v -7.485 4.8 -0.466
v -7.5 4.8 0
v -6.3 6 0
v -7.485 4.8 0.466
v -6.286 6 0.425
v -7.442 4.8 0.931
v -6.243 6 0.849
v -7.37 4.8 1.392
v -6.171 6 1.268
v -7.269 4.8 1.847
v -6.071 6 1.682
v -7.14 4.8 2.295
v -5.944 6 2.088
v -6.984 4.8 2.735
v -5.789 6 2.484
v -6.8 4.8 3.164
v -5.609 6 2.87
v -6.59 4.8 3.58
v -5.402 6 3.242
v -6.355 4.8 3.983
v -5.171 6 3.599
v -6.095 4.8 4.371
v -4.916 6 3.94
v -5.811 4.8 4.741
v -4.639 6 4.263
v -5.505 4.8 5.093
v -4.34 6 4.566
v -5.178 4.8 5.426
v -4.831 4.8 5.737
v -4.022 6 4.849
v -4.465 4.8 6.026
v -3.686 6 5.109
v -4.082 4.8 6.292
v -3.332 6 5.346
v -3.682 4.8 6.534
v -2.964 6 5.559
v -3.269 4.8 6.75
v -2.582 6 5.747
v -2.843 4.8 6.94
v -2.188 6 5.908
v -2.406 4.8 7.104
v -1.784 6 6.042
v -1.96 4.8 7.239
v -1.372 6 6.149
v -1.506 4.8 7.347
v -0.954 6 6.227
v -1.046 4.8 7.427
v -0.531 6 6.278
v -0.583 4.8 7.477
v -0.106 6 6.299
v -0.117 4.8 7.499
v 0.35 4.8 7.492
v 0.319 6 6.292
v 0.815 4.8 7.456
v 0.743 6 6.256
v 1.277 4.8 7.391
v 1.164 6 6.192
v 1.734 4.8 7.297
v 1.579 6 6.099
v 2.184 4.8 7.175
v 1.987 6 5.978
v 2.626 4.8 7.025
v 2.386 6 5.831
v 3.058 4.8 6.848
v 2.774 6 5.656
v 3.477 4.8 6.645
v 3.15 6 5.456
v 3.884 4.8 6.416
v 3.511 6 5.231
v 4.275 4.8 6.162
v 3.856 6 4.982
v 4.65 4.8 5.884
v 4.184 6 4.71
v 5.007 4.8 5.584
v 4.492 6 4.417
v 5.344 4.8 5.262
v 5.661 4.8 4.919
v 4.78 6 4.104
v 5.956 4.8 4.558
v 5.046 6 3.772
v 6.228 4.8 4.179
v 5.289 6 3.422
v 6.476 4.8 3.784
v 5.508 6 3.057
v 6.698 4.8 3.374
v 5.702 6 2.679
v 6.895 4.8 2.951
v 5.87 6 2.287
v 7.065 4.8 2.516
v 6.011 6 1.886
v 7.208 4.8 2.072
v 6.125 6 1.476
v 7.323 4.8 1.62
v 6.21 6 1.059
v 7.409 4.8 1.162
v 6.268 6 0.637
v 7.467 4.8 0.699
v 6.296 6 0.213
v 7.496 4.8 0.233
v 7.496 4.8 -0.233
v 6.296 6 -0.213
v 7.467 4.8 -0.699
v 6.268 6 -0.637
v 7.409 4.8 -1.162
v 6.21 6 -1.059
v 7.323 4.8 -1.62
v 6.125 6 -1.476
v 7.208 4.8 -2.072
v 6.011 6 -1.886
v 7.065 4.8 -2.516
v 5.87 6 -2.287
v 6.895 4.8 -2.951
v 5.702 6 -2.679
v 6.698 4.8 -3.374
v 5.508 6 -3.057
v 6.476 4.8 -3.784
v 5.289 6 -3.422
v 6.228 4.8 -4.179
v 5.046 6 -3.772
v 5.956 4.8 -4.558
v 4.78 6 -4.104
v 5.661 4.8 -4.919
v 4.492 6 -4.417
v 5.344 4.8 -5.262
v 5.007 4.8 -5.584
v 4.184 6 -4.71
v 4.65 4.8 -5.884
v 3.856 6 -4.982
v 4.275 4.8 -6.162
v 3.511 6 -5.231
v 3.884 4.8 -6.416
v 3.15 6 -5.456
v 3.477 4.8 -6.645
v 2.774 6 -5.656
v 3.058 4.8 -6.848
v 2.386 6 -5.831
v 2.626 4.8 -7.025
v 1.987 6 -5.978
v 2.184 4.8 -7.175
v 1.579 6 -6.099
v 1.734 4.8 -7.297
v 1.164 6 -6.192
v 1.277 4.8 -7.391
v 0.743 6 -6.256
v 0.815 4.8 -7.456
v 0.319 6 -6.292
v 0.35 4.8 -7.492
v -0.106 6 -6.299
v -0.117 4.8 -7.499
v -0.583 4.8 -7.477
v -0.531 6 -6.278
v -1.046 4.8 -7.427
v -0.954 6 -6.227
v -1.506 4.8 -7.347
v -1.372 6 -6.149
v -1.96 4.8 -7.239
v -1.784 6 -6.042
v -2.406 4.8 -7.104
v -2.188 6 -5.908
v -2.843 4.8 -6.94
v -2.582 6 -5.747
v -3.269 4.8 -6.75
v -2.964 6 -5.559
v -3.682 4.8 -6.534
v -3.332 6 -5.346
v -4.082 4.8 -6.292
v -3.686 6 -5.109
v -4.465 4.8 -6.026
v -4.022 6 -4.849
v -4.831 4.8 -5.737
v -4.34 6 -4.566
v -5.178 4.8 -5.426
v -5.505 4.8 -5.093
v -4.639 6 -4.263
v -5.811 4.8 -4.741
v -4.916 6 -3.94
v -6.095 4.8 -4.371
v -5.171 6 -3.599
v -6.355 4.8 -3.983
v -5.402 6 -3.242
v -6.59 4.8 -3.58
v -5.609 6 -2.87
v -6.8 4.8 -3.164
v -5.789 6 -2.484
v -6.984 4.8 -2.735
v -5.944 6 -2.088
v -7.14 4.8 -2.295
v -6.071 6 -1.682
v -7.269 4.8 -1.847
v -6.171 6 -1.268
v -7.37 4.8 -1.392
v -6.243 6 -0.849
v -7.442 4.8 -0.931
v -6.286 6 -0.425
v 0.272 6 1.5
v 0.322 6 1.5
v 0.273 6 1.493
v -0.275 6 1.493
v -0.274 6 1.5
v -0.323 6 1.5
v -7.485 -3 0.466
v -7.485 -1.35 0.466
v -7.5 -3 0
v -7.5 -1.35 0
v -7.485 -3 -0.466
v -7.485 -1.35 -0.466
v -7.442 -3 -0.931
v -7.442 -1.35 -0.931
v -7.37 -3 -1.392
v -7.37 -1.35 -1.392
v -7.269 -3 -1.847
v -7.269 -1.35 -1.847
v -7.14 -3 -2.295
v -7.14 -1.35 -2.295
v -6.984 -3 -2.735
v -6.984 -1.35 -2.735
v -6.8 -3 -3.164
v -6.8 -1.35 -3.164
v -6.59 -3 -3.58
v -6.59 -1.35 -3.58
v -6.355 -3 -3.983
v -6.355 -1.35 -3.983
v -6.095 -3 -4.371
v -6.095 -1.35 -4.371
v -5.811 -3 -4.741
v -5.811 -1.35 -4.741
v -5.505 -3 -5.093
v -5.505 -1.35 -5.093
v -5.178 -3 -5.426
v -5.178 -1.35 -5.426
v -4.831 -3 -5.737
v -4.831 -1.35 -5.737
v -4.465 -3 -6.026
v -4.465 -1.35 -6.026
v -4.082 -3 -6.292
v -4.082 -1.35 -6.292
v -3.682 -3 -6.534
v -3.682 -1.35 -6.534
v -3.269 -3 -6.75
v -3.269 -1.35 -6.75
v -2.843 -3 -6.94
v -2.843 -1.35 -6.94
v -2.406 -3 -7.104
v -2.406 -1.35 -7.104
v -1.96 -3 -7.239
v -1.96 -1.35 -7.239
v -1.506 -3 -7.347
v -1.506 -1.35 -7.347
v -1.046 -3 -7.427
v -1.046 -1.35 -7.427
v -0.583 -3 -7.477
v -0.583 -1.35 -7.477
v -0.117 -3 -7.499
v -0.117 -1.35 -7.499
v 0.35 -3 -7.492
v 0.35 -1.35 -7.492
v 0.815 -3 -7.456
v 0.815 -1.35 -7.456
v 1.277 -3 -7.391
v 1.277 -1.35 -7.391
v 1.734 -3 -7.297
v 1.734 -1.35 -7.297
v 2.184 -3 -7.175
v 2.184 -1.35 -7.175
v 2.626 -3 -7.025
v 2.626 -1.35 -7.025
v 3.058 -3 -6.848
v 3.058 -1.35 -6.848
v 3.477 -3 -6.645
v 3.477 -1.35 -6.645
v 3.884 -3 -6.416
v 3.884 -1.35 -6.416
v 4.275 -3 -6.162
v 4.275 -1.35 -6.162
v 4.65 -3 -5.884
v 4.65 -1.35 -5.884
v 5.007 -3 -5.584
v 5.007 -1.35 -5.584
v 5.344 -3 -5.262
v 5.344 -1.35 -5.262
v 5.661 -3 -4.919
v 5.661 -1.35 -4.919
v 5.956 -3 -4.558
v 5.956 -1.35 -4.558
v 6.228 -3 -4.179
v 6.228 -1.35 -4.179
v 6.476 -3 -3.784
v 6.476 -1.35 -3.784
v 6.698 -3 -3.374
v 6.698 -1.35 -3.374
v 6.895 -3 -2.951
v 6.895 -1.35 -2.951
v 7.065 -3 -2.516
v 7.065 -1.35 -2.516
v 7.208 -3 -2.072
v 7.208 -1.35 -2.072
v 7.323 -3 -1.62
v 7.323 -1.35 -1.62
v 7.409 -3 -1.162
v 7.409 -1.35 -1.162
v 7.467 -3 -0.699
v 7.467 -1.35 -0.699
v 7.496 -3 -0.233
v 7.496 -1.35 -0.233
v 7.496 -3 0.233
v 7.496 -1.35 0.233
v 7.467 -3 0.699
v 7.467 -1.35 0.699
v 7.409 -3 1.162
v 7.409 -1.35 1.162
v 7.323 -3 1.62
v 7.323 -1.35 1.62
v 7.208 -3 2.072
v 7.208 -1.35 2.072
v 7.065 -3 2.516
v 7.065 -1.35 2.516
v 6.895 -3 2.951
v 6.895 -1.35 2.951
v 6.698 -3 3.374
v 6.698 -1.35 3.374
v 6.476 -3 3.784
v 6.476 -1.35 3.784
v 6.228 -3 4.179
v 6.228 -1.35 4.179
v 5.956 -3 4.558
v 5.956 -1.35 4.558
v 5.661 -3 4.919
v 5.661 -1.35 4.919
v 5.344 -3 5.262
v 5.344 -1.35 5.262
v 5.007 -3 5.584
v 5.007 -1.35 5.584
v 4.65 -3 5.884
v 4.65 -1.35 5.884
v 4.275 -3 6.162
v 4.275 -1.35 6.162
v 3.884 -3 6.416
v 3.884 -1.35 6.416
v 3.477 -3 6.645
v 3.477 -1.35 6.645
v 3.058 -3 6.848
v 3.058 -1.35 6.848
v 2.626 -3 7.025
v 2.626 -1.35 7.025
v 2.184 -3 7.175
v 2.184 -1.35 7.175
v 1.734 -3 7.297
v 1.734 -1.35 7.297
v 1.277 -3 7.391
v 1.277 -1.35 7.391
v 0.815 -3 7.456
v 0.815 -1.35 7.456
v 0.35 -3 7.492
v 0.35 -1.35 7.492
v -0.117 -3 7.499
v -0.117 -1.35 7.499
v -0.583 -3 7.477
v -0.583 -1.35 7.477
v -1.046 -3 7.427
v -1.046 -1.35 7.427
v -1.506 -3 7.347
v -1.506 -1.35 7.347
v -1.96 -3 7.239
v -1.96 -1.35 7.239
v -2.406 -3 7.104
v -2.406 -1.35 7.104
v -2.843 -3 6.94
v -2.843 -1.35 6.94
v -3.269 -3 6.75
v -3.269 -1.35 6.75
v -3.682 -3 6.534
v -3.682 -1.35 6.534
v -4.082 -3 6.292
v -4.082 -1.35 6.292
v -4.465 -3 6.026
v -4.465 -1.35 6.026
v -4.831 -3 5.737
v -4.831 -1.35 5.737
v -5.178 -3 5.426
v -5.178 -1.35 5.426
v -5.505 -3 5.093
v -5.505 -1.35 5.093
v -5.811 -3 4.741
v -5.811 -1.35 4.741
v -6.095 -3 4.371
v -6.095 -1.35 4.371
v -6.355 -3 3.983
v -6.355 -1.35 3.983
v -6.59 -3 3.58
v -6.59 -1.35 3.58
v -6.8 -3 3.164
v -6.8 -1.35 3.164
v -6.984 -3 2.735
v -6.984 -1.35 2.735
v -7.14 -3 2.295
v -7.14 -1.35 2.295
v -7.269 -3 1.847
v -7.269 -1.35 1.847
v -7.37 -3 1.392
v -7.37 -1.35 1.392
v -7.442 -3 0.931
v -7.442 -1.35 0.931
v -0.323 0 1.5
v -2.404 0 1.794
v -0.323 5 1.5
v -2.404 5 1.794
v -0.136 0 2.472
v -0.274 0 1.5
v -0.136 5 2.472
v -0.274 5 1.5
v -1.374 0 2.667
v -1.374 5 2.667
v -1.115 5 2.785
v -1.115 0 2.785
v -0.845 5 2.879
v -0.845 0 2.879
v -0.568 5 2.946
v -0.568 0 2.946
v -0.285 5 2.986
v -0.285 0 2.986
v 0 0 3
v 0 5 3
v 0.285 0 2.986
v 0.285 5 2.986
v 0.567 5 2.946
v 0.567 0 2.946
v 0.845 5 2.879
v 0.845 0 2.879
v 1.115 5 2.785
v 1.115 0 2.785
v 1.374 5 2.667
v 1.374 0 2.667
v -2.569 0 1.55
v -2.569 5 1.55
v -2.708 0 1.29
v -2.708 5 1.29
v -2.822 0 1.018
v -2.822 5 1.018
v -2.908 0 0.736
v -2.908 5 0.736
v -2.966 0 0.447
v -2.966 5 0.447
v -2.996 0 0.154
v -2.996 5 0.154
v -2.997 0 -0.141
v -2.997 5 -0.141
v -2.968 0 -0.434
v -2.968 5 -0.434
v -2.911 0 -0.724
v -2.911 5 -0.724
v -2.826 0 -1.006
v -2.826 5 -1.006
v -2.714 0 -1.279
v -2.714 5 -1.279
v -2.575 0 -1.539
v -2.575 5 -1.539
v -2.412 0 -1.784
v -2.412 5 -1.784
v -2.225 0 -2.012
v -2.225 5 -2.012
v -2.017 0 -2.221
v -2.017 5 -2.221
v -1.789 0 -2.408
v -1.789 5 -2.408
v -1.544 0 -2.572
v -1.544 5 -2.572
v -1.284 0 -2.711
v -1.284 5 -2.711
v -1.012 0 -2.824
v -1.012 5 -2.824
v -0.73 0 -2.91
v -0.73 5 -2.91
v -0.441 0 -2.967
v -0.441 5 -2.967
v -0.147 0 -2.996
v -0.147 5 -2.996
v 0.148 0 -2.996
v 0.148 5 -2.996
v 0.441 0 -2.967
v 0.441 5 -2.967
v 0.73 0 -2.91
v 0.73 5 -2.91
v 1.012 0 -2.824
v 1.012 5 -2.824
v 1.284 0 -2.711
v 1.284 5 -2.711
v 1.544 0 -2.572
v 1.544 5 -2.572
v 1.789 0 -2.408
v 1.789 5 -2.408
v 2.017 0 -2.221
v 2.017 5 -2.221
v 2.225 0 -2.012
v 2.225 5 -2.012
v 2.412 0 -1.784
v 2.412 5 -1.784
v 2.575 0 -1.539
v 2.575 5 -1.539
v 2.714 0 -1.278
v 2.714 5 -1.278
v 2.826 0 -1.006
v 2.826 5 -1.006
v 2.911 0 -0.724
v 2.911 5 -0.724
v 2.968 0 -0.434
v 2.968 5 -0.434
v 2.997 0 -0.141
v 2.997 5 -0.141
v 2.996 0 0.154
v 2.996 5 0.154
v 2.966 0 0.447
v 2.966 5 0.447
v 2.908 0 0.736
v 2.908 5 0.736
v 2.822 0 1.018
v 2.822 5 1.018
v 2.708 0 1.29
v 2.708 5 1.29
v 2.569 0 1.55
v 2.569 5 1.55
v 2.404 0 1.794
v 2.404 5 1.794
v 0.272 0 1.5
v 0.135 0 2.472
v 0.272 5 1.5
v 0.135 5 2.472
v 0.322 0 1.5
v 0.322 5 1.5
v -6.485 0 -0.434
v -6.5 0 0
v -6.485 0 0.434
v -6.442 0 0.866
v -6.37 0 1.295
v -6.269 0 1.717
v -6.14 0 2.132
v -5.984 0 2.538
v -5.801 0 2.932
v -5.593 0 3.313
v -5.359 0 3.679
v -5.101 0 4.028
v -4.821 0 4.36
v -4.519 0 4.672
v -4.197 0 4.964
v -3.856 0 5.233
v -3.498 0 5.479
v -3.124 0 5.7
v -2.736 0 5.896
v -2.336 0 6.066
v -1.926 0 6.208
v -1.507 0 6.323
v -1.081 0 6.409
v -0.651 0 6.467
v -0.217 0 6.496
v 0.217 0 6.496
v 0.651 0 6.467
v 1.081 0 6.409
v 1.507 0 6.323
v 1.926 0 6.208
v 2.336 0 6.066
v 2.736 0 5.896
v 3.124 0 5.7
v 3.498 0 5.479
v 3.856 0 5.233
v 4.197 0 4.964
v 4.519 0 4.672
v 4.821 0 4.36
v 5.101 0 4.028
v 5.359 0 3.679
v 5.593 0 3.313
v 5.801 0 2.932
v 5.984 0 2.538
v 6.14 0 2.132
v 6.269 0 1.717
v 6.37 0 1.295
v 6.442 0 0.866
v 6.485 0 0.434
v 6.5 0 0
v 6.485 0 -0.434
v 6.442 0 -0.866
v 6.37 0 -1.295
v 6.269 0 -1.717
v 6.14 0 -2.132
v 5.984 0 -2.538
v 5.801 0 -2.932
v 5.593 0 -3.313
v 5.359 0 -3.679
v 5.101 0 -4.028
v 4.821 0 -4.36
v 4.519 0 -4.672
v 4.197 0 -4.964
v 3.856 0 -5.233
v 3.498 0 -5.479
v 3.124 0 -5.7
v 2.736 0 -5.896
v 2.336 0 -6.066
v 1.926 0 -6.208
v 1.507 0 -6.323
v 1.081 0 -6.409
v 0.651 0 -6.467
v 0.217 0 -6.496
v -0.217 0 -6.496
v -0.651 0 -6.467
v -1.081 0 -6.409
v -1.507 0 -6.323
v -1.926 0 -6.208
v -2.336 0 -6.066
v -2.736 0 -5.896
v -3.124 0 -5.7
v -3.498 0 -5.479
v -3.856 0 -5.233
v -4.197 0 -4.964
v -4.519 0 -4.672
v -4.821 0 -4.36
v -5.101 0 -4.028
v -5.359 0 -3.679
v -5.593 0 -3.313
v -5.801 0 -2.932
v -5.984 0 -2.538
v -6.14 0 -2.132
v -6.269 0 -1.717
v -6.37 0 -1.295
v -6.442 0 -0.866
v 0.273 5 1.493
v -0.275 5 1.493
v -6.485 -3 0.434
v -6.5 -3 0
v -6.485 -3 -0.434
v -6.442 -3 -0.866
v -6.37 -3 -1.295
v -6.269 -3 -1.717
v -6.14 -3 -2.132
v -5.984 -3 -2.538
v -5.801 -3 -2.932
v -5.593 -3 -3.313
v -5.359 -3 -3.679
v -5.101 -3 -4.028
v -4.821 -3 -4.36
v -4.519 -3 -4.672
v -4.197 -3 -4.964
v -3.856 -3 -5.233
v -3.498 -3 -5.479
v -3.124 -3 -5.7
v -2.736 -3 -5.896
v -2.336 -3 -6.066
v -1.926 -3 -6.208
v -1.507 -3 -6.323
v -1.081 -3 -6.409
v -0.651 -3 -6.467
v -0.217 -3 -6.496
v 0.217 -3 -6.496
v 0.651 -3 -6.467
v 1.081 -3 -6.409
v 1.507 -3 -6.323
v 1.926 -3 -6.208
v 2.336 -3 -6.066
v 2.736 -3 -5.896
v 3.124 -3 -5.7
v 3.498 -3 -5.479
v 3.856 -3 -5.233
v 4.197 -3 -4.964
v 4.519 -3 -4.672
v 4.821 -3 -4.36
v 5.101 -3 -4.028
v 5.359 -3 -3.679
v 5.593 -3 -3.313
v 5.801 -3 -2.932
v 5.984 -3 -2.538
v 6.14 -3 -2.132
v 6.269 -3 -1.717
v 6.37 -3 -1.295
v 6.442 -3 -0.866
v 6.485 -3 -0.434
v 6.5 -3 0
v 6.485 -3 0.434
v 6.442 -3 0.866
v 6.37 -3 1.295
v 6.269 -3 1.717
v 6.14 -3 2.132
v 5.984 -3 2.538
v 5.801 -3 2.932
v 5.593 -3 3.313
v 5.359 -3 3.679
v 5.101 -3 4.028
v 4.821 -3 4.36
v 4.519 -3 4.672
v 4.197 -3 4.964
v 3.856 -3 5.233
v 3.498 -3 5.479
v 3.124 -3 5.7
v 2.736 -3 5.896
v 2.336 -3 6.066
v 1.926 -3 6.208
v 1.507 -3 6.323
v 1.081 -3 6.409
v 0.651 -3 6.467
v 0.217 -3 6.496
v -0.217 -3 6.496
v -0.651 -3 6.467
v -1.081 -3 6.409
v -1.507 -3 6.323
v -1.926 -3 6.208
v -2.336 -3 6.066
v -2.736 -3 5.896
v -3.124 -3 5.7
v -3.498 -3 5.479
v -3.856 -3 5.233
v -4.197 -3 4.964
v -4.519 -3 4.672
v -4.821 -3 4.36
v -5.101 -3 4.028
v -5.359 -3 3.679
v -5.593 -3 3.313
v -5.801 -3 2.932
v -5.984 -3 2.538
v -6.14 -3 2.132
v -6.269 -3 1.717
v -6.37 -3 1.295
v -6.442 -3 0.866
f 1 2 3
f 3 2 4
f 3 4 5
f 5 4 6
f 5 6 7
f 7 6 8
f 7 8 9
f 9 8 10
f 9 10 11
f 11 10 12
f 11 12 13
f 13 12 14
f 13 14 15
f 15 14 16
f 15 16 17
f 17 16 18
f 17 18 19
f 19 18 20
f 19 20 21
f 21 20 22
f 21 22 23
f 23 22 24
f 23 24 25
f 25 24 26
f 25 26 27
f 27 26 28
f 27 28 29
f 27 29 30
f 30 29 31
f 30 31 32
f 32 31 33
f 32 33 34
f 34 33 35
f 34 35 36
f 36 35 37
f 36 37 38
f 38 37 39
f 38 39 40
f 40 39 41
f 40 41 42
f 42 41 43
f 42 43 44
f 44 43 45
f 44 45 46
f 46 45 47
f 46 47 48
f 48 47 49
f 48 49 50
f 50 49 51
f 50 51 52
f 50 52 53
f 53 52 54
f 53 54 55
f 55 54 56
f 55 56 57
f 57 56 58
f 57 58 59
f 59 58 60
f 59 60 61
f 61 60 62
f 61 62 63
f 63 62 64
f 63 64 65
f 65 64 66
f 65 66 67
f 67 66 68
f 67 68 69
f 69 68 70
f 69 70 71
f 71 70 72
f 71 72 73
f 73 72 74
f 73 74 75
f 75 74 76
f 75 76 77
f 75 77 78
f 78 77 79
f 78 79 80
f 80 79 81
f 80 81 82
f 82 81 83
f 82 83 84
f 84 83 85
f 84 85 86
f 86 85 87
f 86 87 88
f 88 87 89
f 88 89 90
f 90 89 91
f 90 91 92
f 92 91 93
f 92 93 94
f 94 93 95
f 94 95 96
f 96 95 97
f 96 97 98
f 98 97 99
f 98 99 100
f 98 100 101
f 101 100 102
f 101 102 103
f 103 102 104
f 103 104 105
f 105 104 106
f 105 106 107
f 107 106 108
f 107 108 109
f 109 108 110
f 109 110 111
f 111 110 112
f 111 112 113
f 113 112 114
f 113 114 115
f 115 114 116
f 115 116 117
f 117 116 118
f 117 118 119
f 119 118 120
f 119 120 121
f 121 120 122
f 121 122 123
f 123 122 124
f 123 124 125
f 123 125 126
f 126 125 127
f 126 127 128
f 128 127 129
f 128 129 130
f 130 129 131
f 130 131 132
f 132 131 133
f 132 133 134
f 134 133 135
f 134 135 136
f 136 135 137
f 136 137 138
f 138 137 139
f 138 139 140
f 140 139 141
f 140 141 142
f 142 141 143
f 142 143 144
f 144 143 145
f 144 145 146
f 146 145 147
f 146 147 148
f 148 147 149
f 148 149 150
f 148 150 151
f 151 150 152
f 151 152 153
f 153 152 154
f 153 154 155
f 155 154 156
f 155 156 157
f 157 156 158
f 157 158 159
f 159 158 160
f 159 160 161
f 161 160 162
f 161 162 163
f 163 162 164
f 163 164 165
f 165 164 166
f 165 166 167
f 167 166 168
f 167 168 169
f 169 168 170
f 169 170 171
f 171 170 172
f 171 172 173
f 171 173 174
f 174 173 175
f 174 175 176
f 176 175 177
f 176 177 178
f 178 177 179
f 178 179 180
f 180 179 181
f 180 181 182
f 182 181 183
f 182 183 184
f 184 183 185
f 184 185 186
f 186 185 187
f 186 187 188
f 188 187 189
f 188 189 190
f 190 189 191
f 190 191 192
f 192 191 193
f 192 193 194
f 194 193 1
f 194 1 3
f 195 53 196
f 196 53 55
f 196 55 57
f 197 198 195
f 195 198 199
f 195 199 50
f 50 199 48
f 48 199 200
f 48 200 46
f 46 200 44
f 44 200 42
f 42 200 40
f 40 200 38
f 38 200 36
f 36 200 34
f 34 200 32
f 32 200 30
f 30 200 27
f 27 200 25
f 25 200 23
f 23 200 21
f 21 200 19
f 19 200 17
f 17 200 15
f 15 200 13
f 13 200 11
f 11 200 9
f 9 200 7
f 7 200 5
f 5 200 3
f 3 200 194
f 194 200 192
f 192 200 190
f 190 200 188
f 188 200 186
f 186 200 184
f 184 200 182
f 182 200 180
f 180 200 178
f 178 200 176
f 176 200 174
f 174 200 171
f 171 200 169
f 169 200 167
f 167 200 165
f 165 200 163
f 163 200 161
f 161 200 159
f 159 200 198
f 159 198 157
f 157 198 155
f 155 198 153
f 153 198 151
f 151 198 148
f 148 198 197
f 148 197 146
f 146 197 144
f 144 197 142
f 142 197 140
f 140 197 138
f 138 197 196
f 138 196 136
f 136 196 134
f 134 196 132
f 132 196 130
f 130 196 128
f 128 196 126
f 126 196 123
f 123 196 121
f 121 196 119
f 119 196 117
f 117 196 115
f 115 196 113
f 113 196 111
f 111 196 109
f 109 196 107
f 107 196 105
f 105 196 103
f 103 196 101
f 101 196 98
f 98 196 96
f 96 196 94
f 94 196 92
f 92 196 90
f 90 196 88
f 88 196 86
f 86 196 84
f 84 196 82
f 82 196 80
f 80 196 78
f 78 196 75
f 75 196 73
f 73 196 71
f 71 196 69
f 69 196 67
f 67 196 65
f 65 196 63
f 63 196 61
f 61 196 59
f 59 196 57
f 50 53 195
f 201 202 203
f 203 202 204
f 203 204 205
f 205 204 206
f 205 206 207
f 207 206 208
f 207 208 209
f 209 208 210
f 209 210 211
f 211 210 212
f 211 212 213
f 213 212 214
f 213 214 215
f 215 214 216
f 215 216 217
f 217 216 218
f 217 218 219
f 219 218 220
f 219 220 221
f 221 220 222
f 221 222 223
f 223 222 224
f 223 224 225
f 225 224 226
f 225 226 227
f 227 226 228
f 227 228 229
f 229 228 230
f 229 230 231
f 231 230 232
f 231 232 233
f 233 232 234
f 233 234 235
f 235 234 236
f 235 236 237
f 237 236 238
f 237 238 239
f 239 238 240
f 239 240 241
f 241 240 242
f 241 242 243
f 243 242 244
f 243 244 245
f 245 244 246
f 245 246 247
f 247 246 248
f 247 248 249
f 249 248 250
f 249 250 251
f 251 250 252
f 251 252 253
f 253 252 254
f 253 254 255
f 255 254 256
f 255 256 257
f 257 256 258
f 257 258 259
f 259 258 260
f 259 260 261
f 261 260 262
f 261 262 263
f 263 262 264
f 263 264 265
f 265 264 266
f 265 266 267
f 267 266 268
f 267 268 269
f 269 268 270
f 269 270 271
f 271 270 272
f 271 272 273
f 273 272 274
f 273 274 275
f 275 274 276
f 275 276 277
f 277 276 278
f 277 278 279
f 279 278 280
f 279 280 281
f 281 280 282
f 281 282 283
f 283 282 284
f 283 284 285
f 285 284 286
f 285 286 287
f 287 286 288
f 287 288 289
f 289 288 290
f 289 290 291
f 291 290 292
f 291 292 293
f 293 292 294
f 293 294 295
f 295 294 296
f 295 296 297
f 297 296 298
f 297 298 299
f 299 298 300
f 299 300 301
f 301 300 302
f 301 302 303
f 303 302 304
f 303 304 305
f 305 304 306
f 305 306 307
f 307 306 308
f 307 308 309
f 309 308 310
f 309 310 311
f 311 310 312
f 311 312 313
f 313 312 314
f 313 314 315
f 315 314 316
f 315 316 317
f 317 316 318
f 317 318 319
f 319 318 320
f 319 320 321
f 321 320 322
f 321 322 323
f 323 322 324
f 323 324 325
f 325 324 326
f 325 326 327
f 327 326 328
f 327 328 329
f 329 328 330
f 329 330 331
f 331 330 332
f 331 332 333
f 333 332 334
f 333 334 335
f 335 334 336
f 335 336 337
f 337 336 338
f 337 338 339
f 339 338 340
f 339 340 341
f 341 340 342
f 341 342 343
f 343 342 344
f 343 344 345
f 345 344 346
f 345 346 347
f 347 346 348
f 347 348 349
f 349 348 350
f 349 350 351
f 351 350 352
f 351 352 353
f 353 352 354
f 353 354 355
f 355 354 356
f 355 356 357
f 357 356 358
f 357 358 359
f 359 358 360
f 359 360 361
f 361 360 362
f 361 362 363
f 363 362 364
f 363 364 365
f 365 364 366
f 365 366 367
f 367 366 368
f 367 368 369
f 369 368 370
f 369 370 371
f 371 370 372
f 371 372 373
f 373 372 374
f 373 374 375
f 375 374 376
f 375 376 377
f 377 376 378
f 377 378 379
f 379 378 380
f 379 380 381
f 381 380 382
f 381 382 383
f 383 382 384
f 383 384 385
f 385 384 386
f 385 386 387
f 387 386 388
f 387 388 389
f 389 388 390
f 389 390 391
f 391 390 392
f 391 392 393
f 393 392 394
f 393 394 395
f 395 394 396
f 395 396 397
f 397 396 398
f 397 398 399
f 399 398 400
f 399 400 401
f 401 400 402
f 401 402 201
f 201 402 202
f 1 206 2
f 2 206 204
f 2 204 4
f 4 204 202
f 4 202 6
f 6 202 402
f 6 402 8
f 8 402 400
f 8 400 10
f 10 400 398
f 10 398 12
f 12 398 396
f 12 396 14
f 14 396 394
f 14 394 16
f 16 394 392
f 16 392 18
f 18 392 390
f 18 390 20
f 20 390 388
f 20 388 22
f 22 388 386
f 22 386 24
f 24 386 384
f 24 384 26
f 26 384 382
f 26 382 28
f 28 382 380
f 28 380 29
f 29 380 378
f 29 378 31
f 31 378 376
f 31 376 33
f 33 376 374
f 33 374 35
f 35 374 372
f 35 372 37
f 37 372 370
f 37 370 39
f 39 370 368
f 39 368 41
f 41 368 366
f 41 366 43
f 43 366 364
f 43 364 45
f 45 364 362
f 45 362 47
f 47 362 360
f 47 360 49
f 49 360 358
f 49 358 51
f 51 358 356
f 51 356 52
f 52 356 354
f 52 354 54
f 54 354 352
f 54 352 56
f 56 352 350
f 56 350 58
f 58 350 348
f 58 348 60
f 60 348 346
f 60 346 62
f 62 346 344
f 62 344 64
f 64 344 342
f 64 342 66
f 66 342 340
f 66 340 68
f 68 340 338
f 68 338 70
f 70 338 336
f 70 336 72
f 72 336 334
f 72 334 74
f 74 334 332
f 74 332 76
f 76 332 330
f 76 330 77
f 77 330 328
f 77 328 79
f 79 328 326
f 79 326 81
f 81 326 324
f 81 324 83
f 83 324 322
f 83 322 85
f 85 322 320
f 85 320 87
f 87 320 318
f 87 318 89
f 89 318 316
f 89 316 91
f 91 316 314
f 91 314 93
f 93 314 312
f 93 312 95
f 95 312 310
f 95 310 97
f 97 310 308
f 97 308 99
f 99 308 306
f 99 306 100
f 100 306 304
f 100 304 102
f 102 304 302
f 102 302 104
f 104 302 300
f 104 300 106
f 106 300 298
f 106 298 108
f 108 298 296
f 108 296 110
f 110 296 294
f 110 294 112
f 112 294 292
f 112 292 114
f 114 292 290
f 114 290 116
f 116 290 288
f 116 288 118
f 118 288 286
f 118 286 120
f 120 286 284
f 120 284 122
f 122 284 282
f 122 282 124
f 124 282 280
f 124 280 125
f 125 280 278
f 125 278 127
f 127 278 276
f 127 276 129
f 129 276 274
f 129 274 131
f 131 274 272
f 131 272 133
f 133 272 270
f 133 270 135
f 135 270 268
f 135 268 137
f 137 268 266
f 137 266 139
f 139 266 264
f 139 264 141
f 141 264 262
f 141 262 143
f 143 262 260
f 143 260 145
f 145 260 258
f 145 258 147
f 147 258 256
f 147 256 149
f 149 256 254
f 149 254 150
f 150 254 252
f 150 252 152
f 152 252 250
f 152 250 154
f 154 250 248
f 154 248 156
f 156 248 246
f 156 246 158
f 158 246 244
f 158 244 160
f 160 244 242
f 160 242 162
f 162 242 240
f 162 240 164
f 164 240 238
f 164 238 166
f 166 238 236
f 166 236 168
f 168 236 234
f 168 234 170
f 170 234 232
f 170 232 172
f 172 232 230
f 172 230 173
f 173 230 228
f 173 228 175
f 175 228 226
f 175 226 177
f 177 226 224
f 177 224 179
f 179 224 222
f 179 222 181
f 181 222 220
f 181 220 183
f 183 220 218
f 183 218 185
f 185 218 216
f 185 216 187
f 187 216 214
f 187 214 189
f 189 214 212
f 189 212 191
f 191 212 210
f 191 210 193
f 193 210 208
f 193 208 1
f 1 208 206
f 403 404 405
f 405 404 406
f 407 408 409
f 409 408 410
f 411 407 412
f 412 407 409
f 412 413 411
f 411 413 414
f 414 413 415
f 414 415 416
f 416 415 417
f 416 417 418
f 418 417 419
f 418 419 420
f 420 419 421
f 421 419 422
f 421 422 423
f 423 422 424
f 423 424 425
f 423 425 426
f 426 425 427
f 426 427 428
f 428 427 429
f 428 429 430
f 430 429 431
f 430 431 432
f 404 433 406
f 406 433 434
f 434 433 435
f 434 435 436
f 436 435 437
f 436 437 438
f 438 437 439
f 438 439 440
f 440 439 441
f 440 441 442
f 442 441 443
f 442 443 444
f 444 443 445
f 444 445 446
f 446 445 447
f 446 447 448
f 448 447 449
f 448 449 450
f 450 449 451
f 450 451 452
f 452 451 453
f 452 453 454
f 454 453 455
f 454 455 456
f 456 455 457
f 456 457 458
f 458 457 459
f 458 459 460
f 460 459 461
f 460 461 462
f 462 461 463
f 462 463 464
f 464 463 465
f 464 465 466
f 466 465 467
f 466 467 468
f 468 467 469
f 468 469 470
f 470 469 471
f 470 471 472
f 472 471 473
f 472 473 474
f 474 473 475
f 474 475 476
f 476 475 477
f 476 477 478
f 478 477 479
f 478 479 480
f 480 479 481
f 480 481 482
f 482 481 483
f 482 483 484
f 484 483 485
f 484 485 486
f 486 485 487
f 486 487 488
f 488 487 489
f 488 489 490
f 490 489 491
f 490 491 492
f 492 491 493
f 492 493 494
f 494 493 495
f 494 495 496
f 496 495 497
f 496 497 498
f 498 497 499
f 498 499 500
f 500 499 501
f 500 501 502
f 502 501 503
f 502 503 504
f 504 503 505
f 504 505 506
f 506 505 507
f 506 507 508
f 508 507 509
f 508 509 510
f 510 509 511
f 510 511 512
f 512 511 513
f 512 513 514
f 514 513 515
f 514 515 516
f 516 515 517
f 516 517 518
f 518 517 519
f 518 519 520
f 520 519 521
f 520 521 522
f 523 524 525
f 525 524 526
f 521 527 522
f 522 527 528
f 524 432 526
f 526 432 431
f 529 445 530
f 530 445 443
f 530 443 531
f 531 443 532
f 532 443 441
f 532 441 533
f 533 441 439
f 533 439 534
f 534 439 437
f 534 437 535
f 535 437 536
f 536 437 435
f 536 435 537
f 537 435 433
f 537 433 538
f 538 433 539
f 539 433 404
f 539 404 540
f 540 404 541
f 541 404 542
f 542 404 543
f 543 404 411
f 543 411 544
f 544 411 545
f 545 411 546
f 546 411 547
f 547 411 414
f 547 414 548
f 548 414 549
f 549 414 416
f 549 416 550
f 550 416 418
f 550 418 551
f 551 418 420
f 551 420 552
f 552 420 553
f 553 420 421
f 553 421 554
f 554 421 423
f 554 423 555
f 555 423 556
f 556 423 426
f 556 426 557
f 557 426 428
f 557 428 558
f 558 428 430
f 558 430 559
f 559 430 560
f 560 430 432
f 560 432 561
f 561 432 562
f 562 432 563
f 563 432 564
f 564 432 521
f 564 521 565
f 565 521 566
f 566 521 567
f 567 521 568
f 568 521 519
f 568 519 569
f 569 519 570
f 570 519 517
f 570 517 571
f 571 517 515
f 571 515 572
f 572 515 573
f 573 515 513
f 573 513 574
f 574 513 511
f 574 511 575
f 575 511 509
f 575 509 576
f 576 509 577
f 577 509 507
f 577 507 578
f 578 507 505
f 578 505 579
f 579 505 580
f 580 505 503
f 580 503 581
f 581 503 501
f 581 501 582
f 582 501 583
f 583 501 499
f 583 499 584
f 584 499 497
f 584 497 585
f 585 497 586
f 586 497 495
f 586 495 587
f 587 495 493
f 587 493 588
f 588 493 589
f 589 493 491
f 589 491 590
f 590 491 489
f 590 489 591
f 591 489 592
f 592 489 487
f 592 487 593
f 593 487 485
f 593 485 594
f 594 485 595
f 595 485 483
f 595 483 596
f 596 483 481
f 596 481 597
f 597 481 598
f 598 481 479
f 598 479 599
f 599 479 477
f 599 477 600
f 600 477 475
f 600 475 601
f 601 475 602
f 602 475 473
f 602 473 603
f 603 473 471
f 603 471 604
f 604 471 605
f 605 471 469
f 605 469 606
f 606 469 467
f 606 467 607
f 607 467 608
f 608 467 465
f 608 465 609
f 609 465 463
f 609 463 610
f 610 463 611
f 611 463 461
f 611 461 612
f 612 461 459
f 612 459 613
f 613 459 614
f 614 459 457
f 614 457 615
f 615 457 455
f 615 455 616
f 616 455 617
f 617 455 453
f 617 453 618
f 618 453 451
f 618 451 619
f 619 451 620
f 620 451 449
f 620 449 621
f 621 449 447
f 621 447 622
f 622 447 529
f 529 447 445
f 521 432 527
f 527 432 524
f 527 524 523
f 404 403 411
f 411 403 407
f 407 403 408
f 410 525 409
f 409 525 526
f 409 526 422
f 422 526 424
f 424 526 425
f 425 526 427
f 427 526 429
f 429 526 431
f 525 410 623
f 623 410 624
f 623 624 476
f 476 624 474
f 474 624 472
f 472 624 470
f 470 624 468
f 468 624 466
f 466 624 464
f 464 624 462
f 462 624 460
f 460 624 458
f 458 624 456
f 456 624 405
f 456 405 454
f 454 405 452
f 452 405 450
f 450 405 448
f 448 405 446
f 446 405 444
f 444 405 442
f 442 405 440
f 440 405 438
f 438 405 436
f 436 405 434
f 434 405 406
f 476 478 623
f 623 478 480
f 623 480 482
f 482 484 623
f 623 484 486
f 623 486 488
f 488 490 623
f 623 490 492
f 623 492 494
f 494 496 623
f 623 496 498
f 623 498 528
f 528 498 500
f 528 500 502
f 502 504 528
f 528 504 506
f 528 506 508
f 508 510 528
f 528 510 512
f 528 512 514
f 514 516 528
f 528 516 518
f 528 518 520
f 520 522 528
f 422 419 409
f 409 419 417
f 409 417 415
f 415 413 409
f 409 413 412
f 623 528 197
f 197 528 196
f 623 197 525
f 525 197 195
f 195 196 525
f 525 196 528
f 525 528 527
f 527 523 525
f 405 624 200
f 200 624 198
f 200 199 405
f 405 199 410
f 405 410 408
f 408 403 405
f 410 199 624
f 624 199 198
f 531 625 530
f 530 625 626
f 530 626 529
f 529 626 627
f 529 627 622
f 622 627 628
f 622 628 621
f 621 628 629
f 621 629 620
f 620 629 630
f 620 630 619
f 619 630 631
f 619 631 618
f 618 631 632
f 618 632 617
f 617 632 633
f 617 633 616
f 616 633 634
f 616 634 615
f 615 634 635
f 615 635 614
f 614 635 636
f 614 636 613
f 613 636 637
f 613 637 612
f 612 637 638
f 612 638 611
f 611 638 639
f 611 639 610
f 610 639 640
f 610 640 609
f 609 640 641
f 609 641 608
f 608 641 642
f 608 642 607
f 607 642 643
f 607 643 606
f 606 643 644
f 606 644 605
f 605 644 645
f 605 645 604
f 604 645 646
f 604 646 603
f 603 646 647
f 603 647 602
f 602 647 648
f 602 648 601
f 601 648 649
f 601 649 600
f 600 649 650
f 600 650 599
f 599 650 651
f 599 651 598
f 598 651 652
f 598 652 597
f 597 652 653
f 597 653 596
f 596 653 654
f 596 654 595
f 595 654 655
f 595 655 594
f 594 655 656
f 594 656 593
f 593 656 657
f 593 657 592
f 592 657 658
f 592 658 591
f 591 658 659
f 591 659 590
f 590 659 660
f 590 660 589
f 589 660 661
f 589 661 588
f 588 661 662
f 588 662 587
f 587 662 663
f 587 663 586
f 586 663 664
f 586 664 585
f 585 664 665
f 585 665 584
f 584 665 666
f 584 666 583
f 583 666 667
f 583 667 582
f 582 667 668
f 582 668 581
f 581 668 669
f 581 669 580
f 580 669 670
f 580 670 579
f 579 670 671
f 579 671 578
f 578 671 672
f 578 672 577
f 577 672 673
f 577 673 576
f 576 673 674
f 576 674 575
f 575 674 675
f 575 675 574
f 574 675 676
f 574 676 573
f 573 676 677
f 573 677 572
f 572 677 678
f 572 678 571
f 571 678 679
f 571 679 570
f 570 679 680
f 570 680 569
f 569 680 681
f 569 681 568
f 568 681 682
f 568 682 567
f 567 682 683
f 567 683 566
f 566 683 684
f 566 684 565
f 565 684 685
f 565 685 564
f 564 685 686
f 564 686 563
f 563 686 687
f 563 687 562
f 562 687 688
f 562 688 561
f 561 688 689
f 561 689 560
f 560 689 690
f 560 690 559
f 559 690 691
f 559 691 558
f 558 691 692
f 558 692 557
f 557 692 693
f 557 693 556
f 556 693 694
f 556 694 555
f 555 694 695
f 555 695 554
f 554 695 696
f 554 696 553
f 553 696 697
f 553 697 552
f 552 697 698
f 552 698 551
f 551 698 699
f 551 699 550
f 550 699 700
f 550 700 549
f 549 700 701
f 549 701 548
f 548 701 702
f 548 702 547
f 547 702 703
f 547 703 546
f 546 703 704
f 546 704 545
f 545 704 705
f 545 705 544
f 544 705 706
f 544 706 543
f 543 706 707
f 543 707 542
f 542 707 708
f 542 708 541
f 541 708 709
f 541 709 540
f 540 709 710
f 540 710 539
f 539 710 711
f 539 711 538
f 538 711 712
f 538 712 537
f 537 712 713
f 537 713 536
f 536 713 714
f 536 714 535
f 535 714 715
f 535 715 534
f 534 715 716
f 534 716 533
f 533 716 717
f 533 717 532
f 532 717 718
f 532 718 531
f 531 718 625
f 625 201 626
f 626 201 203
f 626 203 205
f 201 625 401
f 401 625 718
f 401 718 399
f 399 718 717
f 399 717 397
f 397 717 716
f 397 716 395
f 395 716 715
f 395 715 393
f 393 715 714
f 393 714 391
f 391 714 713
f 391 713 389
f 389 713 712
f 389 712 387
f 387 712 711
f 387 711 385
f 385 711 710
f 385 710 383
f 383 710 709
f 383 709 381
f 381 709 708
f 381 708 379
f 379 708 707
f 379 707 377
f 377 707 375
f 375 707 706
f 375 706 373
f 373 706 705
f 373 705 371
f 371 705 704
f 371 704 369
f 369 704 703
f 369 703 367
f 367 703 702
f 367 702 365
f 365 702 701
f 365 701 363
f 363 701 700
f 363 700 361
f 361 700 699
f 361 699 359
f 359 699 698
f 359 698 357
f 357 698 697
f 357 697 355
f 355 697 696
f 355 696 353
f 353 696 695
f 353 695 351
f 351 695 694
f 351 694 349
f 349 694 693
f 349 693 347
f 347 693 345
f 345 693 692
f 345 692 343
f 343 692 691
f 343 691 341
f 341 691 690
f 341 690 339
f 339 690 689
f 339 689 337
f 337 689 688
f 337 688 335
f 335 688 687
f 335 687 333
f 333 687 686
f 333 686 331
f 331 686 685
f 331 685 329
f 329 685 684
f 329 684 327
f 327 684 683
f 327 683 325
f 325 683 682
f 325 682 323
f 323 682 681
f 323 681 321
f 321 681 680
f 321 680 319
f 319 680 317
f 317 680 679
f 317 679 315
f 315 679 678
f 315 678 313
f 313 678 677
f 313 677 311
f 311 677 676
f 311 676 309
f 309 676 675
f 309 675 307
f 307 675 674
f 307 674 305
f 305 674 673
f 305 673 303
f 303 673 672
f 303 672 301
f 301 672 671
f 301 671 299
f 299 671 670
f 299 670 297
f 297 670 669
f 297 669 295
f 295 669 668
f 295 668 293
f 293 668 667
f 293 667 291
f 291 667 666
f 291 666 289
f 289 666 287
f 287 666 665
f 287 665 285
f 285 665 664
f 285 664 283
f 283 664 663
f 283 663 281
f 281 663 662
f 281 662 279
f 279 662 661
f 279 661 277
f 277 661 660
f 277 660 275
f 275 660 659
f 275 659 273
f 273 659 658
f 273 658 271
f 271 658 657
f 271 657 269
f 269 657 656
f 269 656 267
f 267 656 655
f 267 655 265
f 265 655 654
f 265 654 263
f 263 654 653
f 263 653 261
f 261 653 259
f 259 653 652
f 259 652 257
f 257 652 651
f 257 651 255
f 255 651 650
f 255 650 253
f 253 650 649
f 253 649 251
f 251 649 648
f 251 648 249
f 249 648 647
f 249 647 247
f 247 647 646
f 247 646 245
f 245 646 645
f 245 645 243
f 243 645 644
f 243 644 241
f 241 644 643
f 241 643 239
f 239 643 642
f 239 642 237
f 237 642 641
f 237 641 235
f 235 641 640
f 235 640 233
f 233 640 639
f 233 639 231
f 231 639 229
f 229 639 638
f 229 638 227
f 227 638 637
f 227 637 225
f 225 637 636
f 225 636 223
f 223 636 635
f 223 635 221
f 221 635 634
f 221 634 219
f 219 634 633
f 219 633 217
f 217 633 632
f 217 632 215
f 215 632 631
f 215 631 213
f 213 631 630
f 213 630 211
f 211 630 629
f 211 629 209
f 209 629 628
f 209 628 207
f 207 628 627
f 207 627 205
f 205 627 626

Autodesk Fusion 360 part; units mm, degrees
sketch "Sketch1" plane through (0, 0, 0) normal (0, 1, 0) x (1, 0, 0)
  circle A0 centre (0, 0) radius 3
  circle A1 centre (0, 0) radius 6.5
  circle A2 centre (0, 0) radius 7.5
  line L0 (-3.5081, -1.5) -> (3.6969, -1.5)
  line L1 (-2.4042, -1.7943) -> (-0.3233, -1.5)
  line L2 (-0.1362, -2.4721) -> (-1.3744, -2.6666)
  line L3 (-0.1362, -2.4721) -> (-0.2747, -1.4931)
  line L4 (-0.0006, -0.4974) -> (-0.0006, -3.2095)
  line L5 (-0.0006, -3.2095) -> (0.4355, -3.2095)
  line L6 (2.403, -1.7943) -> (0.3221, -1.5)
  line L7 (0.135, -2.4721) -> (0.2735, -1.4931)
  line L8 (0.135, -2.4721) -> (1.3732, -2.6666)
  line L9 (0.3221, -1.5) -> (0.2735, -1.4931)
  line L10 (-0.3233, -1.5) -> (-0.2747, -1.4931)
  line L11 (1.3732, -2.6666) -> (1.3779, -2.6674)
  line L12 (2.403, -1.7943) -> (2.4082, -1.7951)
  dimension "d1" = 6
  dimension "d2" = 13
  dimension "d3" = 15
  dimension "d4" = 1.5
  dimension "d5" = 0.4361
extrude "Extrude5" add sketch "Sketch1" along normal blind 1 contours A0 L0 L1 L2 L3 | A0 L0 L1 | A0 L0 L2 L3 L4 | A0 L0 L3 L7 L9 L10 | A0 L0 L4 L7 L8 | A0 L0 L6 L7 L8 | A0 L0 L6 | A1 | A2 makes body 1
extrude "Extrude2" add sketch "Sketch1" along normal blind 5 separate body contours A0 L0 L6 L7 L8 makes body 2
extrude "Extrude1" add sketch "Sketch1" along normal blind 5 separate body contours A0 L0 L1 L2 L3 makes body 3
extrude "Extrude3" add sketch "Sketch1" along normal blind 5 contours A1 bodies 2 3
extrude "Extrude4" add sketch "Sketch1" along normal blind -3 and the other way blind -5 separate body contours A2 makes body 4
move_body "Move1" bodies 1 to x (1, 0, 0) y (0, 1, 0) z (0, 0, 1) at (0, 5, 0)
combine "Combine1" operation add target body 4 tool bodies 1 2
chamfer "Chamfer1" distance 1.2 angle 45 1 edges at (-6.9925, 6, 2.7121) on bodies 4
